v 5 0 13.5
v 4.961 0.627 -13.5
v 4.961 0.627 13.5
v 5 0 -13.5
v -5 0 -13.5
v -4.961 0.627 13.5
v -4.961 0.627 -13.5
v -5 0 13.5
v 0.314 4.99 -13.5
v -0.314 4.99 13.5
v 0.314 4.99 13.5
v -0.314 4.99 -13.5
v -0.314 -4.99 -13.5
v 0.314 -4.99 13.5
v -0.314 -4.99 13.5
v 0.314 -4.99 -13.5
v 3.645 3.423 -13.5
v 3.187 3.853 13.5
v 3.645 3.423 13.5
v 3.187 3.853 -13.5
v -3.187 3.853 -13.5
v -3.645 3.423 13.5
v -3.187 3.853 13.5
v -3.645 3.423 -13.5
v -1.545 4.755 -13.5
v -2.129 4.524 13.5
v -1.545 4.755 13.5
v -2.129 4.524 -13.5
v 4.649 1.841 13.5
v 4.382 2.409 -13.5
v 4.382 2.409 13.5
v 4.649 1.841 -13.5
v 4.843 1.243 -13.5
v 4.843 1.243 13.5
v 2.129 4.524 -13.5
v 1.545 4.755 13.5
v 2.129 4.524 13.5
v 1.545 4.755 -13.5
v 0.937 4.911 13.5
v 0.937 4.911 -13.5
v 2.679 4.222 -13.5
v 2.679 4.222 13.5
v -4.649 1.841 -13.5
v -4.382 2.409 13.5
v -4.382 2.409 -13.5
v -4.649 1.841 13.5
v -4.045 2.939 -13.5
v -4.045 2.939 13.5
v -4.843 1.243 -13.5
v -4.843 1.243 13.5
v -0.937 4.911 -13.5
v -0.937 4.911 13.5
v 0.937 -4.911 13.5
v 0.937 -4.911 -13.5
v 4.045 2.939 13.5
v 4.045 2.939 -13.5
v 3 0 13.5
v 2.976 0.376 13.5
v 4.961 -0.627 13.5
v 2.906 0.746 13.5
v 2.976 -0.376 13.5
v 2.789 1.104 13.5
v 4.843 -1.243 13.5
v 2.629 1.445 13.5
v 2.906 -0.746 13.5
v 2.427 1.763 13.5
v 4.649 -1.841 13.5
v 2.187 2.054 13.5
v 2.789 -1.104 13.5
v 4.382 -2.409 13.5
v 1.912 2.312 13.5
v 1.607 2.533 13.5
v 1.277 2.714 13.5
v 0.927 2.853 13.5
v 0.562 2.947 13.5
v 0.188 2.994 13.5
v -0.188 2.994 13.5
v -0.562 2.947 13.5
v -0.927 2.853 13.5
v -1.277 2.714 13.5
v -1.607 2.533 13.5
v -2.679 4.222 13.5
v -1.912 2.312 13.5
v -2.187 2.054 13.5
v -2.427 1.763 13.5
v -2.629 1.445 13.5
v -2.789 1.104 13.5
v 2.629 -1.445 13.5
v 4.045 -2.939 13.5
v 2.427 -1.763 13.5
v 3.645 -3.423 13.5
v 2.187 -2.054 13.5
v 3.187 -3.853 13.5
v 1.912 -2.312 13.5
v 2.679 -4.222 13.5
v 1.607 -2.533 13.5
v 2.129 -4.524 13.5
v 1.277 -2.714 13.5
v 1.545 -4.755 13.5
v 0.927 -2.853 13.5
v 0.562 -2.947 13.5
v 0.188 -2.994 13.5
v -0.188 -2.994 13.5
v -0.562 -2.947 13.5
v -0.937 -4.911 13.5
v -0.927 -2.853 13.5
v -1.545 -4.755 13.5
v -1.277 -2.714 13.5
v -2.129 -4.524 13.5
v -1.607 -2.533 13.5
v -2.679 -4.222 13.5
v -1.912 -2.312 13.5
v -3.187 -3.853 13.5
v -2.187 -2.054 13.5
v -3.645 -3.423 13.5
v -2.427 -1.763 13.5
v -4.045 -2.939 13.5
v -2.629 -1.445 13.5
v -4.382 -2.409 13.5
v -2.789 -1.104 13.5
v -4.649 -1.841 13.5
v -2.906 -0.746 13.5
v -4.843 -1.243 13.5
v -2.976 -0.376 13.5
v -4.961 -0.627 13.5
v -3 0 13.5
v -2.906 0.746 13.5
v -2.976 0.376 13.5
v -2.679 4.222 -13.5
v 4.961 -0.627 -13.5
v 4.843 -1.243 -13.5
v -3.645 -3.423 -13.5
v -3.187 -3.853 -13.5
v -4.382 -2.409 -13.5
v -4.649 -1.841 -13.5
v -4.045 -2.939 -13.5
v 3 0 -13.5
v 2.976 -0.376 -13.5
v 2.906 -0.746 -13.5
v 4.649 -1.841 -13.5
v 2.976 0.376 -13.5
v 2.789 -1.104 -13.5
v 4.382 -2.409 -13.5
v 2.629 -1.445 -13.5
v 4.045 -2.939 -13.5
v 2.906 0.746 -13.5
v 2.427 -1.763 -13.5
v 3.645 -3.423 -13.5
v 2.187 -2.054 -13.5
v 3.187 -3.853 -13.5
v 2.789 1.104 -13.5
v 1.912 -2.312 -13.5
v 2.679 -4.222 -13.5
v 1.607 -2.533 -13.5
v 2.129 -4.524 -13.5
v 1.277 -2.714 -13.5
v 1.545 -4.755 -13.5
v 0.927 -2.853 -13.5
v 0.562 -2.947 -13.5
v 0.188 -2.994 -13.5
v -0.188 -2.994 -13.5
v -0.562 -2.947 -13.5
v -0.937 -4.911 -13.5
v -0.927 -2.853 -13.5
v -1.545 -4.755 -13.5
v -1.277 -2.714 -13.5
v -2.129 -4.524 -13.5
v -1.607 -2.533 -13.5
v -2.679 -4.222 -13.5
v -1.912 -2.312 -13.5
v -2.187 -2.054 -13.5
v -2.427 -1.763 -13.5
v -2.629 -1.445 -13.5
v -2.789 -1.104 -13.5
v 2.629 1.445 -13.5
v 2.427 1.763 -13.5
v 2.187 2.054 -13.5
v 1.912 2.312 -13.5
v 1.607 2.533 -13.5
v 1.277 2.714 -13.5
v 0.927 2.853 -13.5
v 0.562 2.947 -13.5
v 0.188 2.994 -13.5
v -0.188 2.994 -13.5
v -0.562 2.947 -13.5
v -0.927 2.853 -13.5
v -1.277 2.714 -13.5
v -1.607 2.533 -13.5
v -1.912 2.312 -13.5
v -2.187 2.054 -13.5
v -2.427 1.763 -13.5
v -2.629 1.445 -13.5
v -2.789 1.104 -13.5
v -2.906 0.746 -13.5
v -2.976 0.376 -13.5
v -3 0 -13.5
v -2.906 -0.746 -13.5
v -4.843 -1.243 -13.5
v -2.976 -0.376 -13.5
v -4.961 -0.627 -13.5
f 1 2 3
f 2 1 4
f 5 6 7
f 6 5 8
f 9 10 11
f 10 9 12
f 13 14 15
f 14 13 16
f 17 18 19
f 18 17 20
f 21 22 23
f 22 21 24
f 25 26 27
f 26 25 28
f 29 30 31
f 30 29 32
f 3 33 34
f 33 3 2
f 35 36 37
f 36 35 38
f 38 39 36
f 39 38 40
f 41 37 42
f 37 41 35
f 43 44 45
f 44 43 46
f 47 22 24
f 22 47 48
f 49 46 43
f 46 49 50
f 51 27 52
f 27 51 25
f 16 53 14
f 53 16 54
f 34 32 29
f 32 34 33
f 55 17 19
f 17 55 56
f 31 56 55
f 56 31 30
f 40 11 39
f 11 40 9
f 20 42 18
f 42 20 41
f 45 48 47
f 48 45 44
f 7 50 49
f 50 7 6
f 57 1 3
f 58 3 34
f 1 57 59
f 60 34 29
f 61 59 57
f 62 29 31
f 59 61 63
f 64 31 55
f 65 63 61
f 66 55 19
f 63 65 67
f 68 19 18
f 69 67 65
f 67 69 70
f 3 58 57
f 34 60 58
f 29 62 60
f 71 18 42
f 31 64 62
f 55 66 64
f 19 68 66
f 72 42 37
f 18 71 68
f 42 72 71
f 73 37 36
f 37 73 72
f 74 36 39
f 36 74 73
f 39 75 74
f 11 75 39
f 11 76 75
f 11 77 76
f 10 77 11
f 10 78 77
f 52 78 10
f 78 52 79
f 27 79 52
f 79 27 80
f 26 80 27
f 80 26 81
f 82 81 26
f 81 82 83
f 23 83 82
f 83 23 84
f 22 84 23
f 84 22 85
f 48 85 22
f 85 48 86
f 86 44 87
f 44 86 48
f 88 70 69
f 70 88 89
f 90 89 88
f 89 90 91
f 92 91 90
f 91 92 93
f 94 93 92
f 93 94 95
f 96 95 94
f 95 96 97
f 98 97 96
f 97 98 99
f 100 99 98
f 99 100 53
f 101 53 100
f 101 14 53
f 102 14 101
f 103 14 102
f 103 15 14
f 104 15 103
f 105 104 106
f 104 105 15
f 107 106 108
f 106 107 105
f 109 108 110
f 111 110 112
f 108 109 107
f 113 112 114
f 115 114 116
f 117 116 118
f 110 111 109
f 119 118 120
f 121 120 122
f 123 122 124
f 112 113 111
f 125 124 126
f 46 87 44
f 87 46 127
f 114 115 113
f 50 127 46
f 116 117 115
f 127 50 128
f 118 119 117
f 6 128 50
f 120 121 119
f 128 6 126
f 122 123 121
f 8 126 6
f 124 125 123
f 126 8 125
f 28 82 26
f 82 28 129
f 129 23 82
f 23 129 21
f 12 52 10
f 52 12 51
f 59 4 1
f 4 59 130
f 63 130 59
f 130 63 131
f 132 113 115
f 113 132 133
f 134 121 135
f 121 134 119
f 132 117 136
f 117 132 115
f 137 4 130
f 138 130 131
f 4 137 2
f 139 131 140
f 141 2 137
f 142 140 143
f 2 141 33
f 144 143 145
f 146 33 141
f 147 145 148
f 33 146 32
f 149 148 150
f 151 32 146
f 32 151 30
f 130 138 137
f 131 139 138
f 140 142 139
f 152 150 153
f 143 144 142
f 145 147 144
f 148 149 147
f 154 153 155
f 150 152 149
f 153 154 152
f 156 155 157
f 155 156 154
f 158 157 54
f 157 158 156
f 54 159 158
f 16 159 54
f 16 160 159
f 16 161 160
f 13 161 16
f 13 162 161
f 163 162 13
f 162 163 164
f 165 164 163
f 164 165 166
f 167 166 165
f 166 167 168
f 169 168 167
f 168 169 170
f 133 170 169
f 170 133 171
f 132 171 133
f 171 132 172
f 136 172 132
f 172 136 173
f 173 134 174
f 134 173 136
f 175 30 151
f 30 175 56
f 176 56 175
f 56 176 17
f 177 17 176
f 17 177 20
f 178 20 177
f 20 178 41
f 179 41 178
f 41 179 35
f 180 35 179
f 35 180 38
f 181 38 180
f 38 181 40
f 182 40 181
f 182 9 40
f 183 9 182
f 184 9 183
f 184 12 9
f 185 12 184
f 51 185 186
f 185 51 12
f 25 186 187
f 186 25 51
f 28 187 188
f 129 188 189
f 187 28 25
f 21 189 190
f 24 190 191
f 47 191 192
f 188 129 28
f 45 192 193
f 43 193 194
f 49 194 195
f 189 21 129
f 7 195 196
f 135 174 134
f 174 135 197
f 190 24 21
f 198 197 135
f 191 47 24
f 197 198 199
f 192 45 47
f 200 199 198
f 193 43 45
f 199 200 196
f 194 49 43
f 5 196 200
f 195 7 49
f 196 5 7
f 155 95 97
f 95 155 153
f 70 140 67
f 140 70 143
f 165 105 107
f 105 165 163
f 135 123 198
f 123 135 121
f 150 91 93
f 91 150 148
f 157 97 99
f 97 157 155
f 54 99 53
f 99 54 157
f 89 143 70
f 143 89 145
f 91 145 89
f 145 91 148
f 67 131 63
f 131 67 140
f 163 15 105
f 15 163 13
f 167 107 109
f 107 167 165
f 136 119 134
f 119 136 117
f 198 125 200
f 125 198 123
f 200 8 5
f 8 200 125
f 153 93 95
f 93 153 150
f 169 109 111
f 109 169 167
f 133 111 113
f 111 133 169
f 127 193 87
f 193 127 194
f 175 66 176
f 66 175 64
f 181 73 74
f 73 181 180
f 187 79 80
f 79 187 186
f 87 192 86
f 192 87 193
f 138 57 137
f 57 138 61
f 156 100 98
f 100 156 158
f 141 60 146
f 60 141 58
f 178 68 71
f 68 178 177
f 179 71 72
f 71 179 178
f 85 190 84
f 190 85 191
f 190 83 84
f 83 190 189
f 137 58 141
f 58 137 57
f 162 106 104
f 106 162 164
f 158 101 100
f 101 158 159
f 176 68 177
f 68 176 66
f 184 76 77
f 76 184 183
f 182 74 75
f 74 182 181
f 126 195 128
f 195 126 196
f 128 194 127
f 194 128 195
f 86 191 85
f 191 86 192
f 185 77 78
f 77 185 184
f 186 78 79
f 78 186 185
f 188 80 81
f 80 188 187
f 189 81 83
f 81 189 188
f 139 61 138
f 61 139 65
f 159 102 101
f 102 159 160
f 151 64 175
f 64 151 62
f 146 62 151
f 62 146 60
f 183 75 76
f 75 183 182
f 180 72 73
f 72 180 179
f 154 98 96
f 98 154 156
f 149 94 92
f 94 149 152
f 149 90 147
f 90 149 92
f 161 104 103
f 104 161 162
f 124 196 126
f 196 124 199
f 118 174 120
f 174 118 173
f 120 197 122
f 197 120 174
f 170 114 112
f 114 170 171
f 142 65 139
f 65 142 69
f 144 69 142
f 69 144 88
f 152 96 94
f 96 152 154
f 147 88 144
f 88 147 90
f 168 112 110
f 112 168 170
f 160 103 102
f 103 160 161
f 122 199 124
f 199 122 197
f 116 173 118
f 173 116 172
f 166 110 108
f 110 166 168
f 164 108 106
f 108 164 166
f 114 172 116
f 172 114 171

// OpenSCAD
$fn = 50;


difference() {
	union() {
		translate(v = [0, 0, -13.5000000000]) {
			cylinder(h = 27, r = 5.0000000000);
		}
	}
	union() {
		translate(v = [0, 0, -100.0000000000]) {
			cylinder(h = 200, r = 3);
		}
	}
}
